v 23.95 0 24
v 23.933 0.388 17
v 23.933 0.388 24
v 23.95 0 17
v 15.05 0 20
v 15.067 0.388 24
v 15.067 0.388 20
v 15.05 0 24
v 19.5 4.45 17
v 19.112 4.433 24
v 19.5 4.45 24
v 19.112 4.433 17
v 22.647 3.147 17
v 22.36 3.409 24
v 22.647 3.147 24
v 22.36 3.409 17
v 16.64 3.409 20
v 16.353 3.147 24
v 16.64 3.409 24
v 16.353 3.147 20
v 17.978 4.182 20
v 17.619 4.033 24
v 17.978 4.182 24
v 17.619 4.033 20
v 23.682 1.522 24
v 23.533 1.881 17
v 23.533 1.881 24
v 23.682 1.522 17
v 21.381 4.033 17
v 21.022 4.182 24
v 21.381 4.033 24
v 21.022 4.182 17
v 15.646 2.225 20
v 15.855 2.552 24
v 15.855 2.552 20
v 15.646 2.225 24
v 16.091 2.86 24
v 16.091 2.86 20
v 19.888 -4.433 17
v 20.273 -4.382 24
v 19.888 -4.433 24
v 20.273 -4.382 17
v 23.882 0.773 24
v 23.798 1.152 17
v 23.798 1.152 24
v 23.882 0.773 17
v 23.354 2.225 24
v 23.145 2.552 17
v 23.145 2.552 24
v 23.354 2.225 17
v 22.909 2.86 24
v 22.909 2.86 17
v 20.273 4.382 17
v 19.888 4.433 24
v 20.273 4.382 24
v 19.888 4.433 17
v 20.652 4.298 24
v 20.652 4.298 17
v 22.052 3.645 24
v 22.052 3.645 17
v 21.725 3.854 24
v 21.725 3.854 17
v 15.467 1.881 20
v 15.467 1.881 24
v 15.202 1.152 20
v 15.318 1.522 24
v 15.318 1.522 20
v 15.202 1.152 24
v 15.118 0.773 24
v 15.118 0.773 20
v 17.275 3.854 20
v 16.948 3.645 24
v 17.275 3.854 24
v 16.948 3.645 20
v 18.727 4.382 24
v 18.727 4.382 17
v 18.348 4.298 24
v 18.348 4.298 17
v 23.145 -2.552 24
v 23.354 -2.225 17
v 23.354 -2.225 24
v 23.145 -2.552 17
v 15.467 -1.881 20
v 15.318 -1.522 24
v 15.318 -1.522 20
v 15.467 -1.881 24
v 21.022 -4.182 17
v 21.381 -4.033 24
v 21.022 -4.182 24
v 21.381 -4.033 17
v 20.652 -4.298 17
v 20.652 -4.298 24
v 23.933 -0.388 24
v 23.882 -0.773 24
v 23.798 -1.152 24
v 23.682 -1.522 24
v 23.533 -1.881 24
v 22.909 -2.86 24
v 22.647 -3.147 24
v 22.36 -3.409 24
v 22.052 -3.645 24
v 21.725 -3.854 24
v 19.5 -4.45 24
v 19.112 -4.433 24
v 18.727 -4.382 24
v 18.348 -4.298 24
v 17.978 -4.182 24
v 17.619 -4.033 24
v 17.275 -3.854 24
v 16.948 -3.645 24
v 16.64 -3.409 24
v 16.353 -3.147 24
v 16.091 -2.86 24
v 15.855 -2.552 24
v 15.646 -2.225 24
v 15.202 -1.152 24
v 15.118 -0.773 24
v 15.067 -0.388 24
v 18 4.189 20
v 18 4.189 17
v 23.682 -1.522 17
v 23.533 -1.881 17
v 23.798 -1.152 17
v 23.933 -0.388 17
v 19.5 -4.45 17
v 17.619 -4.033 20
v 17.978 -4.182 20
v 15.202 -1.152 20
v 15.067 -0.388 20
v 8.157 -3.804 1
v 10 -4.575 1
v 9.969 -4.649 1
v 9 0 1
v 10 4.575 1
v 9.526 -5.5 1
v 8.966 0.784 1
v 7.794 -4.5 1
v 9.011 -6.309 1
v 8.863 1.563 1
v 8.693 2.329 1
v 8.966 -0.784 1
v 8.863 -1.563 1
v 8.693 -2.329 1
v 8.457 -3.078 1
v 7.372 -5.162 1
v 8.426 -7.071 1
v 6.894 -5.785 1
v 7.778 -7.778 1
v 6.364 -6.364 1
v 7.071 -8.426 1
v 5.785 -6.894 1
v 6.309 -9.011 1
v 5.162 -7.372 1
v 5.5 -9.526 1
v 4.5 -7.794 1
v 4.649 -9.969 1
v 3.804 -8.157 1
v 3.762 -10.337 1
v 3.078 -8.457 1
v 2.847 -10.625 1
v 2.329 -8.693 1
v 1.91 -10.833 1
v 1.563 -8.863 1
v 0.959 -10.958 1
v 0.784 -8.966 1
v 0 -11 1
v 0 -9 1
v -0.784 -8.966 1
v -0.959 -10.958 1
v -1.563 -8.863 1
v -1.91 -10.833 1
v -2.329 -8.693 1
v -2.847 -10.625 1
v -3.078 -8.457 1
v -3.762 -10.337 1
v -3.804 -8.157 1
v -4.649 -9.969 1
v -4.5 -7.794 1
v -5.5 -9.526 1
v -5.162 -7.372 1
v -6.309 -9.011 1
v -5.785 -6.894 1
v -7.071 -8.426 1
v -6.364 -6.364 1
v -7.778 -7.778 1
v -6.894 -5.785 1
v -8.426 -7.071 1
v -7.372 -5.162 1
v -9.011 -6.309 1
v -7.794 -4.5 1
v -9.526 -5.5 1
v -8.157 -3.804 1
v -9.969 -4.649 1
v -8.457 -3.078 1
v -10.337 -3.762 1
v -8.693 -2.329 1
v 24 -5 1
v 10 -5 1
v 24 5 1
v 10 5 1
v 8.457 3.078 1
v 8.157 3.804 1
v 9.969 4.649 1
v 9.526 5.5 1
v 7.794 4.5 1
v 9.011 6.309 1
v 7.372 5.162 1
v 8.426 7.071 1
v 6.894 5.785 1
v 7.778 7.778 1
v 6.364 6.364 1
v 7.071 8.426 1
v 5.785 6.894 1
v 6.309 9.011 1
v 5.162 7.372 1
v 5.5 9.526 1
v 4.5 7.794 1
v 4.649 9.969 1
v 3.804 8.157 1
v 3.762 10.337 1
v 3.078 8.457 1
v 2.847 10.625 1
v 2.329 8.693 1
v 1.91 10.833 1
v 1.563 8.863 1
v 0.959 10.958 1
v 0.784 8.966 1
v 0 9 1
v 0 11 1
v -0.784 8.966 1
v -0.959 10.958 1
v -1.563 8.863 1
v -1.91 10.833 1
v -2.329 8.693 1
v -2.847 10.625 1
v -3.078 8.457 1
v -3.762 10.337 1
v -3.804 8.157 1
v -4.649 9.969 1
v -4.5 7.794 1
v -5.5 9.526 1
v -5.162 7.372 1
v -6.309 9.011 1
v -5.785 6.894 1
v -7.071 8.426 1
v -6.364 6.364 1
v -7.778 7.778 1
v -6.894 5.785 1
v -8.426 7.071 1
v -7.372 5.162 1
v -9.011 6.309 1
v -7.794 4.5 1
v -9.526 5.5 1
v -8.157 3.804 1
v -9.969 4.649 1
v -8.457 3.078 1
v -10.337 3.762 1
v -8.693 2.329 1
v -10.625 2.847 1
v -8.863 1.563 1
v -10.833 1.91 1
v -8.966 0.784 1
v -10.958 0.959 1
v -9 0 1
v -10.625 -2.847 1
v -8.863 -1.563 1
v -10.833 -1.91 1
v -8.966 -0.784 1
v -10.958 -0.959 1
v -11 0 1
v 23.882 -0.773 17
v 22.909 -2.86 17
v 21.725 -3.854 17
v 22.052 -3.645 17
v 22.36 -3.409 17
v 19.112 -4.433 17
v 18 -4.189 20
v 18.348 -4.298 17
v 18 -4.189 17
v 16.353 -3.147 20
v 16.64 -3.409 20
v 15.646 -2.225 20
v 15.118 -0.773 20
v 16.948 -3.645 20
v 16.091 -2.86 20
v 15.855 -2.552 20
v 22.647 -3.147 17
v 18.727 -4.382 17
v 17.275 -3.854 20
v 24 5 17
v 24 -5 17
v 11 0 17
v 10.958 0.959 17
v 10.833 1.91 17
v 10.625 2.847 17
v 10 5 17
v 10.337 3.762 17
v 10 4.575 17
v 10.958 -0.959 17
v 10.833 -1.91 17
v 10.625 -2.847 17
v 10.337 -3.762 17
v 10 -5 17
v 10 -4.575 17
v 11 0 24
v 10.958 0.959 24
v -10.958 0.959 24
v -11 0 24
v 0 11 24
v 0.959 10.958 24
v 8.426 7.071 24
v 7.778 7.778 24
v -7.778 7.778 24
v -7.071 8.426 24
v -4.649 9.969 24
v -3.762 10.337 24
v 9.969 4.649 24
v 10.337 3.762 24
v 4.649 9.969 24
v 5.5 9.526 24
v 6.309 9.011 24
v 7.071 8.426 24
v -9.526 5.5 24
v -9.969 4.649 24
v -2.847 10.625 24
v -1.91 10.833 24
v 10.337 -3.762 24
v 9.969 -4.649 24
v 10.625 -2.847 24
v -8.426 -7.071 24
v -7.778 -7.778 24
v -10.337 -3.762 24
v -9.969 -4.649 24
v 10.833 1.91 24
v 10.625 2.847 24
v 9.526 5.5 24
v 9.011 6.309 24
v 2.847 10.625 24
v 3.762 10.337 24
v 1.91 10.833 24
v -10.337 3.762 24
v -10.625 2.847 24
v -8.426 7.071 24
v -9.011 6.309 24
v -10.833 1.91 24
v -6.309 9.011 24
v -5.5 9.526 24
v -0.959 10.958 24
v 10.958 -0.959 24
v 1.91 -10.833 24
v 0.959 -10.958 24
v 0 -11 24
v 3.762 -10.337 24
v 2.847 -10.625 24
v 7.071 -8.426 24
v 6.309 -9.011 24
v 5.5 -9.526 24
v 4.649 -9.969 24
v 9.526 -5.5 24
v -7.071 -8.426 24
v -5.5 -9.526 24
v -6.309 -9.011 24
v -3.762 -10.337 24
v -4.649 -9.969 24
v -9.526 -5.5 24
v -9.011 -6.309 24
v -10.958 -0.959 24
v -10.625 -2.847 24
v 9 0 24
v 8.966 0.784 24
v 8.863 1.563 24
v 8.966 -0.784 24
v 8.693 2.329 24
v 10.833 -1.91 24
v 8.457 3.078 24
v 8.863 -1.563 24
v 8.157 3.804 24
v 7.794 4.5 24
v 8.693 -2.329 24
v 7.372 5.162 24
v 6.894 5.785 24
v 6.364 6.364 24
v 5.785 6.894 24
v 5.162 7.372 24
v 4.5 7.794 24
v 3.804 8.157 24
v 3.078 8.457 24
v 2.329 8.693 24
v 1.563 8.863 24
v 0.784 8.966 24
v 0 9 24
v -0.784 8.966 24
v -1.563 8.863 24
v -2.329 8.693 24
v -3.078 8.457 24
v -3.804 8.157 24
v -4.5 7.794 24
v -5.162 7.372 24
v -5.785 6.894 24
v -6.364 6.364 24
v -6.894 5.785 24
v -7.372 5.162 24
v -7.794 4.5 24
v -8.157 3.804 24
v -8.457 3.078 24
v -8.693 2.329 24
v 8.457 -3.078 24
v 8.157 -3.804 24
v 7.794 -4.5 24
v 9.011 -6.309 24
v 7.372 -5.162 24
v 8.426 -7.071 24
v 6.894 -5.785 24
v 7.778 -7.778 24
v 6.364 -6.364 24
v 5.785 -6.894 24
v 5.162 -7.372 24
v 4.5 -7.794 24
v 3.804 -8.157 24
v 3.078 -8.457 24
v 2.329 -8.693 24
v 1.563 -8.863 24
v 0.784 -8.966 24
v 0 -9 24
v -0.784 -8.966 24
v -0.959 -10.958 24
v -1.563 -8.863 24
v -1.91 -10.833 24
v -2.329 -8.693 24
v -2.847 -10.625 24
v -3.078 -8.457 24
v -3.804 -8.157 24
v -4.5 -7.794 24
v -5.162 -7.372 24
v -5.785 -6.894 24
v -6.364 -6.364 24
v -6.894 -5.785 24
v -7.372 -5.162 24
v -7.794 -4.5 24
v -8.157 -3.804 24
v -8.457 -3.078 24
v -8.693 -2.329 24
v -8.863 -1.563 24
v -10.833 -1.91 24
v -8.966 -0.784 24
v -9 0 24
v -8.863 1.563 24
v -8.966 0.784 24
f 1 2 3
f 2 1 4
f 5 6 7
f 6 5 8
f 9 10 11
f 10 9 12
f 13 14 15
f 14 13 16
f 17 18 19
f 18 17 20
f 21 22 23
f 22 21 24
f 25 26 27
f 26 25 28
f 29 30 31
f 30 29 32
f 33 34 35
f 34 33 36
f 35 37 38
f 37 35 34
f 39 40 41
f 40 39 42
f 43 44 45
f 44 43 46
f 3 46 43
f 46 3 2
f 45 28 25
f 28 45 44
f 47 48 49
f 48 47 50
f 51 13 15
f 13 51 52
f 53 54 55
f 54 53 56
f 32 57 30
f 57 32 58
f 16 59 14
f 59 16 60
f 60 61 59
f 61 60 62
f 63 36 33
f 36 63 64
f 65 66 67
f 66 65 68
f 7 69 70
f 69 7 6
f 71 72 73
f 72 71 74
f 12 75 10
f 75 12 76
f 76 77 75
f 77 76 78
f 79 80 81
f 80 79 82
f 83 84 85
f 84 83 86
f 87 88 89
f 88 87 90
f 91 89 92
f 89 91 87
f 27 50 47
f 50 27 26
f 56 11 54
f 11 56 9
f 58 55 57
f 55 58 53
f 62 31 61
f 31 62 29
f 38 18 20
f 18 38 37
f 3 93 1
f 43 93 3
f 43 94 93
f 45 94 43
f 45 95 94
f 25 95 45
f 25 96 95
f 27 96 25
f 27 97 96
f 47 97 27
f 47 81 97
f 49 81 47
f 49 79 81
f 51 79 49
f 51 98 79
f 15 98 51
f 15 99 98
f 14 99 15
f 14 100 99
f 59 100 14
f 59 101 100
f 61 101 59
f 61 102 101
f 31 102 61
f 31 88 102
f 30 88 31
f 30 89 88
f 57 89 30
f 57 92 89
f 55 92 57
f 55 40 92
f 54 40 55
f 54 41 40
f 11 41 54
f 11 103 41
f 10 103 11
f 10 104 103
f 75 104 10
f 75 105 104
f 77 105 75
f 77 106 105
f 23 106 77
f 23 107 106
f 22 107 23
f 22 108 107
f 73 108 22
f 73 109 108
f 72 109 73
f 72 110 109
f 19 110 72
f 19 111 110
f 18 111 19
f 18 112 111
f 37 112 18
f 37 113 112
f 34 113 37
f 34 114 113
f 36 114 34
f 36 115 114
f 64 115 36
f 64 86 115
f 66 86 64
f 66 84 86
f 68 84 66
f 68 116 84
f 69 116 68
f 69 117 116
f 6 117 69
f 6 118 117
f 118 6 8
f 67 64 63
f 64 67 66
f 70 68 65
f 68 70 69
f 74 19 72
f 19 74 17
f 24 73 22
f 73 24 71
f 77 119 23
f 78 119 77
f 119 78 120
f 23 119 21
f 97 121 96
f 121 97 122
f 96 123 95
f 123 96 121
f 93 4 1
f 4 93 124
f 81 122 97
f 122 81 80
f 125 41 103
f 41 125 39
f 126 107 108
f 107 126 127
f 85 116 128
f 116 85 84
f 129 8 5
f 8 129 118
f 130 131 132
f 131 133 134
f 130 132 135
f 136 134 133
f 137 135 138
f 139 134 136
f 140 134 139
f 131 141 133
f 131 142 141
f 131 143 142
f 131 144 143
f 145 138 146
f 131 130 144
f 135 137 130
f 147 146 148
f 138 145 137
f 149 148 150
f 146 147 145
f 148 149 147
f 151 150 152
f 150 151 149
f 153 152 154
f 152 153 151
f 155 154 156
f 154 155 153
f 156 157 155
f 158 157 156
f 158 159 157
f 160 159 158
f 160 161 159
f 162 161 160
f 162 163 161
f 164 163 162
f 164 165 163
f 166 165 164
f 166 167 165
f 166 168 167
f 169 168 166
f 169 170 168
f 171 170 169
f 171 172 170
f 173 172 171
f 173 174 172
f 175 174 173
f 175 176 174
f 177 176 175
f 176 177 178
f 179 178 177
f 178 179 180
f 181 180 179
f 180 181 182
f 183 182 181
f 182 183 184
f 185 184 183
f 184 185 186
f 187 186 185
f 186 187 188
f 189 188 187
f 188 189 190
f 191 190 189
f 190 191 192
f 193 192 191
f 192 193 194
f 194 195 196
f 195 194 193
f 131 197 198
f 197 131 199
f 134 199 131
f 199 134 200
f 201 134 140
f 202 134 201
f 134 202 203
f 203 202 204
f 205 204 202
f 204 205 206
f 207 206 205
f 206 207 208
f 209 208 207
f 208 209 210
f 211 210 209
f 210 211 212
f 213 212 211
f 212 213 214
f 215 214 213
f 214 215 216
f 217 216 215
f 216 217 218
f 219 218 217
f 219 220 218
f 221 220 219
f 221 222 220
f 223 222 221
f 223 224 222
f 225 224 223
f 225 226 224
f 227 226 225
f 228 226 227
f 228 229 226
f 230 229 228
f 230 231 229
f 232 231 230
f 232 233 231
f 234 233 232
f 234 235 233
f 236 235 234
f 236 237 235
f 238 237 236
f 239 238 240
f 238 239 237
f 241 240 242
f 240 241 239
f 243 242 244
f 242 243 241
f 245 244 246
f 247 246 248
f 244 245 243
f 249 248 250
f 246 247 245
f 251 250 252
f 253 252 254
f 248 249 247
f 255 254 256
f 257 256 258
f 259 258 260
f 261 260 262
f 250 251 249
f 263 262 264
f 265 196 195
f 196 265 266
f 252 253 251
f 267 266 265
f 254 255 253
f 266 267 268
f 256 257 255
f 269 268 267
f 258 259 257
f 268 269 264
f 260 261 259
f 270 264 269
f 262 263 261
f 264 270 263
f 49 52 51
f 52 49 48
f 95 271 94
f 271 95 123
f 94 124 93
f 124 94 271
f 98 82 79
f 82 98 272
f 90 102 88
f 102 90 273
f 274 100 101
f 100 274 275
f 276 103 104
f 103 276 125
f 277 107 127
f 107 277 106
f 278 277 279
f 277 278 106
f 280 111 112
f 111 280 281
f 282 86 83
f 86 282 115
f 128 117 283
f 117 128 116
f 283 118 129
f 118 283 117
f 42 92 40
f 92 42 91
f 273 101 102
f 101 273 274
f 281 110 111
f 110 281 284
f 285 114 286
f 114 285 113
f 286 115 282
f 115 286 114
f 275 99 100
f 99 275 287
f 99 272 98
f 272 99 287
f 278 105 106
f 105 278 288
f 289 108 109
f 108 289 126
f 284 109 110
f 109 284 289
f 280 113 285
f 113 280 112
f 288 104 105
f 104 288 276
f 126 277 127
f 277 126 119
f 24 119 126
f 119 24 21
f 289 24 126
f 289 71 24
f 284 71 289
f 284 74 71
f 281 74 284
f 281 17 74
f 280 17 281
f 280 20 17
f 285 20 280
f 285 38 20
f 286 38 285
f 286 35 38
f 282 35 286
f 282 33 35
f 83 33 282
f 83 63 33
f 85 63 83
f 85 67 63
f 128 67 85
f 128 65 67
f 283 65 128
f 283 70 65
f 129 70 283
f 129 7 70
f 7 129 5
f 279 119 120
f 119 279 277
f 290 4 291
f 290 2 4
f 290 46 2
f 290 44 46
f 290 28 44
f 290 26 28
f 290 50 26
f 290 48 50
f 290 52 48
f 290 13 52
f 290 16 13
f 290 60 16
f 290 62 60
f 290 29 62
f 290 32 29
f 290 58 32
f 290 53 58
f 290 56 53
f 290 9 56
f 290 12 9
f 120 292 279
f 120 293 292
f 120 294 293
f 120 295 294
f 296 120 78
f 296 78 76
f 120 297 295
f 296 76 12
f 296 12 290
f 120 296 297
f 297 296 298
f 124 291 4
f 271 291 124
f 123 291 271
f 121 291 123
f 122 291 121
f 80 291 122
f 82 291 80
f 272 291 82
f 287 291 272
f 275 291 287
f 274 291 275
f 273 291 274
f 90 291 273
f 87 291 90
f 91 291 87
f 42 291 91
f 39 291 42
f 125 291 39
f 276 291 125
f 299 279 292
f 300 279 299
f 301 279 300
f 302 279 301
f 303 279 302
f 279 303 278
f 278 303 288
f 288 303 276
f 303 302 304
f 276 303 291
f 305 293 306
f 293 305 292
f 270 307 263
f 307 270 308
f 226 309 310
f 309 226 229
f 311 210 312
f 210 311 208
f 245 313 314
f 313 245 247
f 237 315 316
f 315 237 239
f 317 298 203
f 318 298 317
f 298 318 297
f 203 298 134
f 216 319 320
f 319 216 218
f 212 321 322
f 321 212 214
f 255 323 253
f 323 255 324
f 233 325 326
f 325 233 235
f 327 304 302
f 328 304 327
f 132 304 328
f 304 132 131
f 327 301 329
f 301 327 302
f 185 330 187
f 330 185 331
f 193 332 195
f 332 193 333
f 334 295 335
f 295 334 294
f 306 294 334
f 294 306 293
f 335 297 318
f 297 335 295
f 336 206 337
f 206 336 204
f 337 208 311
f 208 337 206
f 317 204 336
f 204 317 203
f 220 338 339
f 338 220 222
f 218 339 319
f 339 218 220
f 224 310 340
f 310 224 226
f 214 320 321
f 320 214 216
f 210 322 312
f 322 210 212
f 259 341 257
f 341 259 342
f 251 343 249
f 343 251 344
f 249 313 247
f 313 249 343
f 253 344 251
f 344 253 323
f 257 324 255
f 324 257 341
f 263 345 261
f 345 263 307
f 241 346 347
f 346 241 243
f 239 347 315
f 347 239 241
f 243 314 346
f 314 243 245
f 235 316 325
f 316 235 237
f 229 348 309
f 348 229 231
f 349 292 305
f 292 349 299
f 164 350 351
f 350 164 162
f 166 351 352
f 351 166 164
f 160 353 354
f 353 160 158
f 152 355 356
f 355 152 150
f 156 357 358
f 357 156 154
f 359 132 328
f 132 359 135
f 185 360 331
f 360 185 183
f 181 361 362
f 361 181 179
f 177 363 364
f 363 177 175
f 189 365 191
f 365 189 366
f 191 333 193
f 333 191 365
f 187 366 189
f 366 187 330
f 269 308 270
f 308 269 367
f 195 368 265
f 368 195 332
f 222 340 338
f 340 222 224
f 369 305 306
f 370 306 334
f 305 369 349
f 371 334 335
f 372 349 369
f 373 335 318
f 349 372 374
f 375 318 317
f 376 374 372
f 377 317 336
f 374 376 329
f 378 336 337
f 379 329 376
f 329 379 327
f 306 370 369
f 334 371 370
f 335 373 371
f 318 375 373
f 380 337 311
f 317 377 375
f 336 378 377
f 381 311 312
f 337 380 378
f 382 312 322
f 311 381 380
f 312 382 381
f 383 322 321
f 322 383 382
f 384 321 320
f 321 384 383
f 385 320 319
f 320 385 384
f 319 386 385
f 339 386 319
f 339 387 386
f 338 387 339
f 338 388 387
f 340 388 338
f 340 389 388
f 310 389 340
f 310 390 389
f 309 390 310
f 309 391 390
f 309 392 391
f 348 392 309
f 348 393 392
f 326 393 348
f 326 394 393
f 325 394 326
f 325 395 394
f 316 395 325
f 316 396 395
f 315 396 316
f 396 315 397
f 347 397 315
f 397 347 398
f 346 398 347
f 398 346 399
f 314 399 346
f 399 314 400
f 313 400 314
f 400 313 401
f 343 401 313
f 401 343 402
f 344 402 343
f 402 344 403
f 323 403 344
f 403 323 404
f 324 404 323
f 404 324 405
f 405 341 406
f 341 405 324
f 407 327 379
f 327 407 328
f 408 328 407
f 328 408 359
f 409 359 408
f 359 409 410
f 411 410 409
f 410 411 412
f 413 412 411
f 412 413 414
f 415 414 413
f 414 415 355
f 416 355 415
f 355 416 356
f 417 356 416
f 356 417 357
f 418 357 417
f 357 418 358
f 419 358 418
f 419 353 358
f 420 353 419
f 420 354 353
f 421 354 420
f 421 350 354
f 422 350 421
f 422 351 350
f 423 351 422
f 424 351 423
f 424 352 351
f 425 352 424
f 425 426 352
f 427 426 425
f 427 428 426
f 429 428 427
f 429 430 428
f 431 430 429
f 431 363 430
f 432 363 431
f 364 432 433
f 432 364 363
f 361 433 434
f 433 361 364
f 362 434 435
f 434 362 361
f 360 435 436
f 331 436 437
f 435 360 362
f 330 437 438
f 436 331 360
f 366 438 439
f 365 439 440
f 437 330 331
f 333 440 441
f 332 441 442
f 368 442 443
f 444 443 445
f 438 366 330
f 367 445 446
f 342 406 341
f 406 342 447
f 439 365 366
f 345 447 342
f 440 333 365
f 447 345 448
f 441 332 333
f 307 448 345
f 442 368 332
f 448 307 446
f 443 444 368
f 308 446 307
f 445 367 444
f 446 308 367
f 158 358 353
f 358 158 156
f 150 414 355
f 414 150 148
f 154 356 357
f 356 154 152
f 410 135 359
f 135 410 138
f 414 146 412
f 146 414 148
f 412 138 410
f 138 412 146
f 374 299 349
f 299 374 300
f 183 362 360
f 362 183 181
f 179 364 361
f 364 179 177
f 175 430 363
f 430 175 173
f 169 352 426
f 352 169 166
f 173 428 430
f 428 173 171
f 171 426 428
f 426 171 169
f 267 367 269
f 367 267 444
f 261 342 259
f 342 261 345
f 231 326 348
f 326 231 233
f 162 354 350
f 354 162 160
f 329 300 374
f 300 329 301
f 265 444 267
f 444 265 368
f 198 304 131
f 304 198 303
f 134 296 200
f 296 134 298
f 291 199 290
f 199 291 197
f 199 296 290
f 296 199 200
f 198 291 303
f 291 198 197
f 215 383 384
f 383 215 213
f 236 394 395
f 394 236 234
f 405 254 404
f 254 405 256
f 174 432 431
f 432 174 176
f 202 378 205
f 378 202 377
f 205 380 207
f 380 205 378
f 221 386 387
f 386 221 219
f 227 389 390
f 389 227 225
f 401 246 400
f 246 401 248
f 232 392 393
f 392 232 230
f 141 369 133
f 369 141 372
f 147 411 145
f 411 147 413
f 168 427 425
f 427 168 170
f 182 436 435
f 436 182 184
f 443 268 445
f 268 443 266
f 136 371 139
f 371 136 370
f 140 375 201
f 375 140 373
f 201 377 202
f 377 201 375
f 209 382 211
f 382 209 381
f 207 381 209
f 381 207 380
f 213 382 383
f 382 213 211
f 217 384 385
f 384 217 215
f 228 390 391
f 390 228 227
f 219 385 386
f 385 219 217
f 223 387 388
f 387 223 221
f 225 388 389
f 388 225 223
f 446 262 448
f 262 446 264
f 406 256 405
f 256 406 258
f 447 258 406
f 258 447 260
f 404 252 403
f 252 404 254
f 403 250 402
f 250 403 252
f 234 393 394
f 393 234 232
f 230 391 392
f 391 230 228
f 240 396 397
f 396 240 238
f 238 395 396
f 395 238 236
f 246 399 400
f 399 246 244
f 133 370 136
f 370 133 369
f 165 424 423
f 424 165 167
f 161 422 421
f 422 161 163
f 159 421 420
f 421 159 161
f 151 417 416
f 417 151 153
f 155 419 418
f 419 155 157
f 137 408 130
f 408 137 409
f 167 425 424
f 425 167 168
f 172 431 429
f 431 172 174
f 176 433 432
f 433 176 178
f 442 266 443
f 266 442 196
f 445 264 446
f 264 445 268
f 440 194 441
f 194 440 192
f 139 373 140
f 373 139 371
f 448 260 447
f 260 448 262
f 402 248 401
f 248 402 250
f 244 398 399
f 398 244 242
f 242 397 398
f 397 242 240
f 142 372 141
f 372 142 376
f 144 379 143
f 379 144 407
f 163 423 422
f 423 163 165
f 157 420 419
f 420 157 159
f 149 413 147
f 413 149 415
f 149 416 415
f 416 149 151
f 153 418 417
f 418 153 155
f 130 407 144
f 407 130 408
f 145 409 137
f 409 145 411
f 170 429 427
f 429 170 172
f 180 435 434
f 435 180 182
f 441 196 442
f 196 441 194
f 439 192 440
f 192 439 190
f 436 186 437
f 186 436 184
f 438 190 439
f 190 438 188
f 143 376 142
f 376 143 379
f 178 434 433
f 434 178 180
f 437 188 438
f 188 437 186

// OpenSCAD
$fs = 0.1;  // Don't genrate smaller facets than 0.1 mm
$fa = 5;    // Don't generate larger angles than 5 degrees

ic = 18; // inner diameter of pipe holder
pht = 4; // thickness of the pipe holder
phh = 25; // height of pipeholder

//v2 notes: increased hook cyliender radius from 3.5 to 4, increased inner diameter of pipe holder by 1
//v4 notes: increased diameter of hook by .9mm, increased strength of hook joing, spaced hook further from the poleholder

union() { 
    }

hook(phh);
pipeholder(ic, pht, phh);

module pipeholder (ic, pht, phh) {
    difference () {
        union() { 
            color("yellow") translate([0,0,1]) cylinder(h=(phh-2), r=((ic/2)+(pht/2)));
            color ("purple") translate([10,-5,1]) cube ([14,10,16]);
        }
        color("Green") cylinder(h=phh, r=ic/2);
 
    }   
}
   
module hook (phh) {
    difference() {
        color("red") translate([19.5,0,1]) cylinder(h=(phh-2), r=4.45);
        color("blue") translate([15,-5,17]) cube ([3,10,3]);
    }
}
